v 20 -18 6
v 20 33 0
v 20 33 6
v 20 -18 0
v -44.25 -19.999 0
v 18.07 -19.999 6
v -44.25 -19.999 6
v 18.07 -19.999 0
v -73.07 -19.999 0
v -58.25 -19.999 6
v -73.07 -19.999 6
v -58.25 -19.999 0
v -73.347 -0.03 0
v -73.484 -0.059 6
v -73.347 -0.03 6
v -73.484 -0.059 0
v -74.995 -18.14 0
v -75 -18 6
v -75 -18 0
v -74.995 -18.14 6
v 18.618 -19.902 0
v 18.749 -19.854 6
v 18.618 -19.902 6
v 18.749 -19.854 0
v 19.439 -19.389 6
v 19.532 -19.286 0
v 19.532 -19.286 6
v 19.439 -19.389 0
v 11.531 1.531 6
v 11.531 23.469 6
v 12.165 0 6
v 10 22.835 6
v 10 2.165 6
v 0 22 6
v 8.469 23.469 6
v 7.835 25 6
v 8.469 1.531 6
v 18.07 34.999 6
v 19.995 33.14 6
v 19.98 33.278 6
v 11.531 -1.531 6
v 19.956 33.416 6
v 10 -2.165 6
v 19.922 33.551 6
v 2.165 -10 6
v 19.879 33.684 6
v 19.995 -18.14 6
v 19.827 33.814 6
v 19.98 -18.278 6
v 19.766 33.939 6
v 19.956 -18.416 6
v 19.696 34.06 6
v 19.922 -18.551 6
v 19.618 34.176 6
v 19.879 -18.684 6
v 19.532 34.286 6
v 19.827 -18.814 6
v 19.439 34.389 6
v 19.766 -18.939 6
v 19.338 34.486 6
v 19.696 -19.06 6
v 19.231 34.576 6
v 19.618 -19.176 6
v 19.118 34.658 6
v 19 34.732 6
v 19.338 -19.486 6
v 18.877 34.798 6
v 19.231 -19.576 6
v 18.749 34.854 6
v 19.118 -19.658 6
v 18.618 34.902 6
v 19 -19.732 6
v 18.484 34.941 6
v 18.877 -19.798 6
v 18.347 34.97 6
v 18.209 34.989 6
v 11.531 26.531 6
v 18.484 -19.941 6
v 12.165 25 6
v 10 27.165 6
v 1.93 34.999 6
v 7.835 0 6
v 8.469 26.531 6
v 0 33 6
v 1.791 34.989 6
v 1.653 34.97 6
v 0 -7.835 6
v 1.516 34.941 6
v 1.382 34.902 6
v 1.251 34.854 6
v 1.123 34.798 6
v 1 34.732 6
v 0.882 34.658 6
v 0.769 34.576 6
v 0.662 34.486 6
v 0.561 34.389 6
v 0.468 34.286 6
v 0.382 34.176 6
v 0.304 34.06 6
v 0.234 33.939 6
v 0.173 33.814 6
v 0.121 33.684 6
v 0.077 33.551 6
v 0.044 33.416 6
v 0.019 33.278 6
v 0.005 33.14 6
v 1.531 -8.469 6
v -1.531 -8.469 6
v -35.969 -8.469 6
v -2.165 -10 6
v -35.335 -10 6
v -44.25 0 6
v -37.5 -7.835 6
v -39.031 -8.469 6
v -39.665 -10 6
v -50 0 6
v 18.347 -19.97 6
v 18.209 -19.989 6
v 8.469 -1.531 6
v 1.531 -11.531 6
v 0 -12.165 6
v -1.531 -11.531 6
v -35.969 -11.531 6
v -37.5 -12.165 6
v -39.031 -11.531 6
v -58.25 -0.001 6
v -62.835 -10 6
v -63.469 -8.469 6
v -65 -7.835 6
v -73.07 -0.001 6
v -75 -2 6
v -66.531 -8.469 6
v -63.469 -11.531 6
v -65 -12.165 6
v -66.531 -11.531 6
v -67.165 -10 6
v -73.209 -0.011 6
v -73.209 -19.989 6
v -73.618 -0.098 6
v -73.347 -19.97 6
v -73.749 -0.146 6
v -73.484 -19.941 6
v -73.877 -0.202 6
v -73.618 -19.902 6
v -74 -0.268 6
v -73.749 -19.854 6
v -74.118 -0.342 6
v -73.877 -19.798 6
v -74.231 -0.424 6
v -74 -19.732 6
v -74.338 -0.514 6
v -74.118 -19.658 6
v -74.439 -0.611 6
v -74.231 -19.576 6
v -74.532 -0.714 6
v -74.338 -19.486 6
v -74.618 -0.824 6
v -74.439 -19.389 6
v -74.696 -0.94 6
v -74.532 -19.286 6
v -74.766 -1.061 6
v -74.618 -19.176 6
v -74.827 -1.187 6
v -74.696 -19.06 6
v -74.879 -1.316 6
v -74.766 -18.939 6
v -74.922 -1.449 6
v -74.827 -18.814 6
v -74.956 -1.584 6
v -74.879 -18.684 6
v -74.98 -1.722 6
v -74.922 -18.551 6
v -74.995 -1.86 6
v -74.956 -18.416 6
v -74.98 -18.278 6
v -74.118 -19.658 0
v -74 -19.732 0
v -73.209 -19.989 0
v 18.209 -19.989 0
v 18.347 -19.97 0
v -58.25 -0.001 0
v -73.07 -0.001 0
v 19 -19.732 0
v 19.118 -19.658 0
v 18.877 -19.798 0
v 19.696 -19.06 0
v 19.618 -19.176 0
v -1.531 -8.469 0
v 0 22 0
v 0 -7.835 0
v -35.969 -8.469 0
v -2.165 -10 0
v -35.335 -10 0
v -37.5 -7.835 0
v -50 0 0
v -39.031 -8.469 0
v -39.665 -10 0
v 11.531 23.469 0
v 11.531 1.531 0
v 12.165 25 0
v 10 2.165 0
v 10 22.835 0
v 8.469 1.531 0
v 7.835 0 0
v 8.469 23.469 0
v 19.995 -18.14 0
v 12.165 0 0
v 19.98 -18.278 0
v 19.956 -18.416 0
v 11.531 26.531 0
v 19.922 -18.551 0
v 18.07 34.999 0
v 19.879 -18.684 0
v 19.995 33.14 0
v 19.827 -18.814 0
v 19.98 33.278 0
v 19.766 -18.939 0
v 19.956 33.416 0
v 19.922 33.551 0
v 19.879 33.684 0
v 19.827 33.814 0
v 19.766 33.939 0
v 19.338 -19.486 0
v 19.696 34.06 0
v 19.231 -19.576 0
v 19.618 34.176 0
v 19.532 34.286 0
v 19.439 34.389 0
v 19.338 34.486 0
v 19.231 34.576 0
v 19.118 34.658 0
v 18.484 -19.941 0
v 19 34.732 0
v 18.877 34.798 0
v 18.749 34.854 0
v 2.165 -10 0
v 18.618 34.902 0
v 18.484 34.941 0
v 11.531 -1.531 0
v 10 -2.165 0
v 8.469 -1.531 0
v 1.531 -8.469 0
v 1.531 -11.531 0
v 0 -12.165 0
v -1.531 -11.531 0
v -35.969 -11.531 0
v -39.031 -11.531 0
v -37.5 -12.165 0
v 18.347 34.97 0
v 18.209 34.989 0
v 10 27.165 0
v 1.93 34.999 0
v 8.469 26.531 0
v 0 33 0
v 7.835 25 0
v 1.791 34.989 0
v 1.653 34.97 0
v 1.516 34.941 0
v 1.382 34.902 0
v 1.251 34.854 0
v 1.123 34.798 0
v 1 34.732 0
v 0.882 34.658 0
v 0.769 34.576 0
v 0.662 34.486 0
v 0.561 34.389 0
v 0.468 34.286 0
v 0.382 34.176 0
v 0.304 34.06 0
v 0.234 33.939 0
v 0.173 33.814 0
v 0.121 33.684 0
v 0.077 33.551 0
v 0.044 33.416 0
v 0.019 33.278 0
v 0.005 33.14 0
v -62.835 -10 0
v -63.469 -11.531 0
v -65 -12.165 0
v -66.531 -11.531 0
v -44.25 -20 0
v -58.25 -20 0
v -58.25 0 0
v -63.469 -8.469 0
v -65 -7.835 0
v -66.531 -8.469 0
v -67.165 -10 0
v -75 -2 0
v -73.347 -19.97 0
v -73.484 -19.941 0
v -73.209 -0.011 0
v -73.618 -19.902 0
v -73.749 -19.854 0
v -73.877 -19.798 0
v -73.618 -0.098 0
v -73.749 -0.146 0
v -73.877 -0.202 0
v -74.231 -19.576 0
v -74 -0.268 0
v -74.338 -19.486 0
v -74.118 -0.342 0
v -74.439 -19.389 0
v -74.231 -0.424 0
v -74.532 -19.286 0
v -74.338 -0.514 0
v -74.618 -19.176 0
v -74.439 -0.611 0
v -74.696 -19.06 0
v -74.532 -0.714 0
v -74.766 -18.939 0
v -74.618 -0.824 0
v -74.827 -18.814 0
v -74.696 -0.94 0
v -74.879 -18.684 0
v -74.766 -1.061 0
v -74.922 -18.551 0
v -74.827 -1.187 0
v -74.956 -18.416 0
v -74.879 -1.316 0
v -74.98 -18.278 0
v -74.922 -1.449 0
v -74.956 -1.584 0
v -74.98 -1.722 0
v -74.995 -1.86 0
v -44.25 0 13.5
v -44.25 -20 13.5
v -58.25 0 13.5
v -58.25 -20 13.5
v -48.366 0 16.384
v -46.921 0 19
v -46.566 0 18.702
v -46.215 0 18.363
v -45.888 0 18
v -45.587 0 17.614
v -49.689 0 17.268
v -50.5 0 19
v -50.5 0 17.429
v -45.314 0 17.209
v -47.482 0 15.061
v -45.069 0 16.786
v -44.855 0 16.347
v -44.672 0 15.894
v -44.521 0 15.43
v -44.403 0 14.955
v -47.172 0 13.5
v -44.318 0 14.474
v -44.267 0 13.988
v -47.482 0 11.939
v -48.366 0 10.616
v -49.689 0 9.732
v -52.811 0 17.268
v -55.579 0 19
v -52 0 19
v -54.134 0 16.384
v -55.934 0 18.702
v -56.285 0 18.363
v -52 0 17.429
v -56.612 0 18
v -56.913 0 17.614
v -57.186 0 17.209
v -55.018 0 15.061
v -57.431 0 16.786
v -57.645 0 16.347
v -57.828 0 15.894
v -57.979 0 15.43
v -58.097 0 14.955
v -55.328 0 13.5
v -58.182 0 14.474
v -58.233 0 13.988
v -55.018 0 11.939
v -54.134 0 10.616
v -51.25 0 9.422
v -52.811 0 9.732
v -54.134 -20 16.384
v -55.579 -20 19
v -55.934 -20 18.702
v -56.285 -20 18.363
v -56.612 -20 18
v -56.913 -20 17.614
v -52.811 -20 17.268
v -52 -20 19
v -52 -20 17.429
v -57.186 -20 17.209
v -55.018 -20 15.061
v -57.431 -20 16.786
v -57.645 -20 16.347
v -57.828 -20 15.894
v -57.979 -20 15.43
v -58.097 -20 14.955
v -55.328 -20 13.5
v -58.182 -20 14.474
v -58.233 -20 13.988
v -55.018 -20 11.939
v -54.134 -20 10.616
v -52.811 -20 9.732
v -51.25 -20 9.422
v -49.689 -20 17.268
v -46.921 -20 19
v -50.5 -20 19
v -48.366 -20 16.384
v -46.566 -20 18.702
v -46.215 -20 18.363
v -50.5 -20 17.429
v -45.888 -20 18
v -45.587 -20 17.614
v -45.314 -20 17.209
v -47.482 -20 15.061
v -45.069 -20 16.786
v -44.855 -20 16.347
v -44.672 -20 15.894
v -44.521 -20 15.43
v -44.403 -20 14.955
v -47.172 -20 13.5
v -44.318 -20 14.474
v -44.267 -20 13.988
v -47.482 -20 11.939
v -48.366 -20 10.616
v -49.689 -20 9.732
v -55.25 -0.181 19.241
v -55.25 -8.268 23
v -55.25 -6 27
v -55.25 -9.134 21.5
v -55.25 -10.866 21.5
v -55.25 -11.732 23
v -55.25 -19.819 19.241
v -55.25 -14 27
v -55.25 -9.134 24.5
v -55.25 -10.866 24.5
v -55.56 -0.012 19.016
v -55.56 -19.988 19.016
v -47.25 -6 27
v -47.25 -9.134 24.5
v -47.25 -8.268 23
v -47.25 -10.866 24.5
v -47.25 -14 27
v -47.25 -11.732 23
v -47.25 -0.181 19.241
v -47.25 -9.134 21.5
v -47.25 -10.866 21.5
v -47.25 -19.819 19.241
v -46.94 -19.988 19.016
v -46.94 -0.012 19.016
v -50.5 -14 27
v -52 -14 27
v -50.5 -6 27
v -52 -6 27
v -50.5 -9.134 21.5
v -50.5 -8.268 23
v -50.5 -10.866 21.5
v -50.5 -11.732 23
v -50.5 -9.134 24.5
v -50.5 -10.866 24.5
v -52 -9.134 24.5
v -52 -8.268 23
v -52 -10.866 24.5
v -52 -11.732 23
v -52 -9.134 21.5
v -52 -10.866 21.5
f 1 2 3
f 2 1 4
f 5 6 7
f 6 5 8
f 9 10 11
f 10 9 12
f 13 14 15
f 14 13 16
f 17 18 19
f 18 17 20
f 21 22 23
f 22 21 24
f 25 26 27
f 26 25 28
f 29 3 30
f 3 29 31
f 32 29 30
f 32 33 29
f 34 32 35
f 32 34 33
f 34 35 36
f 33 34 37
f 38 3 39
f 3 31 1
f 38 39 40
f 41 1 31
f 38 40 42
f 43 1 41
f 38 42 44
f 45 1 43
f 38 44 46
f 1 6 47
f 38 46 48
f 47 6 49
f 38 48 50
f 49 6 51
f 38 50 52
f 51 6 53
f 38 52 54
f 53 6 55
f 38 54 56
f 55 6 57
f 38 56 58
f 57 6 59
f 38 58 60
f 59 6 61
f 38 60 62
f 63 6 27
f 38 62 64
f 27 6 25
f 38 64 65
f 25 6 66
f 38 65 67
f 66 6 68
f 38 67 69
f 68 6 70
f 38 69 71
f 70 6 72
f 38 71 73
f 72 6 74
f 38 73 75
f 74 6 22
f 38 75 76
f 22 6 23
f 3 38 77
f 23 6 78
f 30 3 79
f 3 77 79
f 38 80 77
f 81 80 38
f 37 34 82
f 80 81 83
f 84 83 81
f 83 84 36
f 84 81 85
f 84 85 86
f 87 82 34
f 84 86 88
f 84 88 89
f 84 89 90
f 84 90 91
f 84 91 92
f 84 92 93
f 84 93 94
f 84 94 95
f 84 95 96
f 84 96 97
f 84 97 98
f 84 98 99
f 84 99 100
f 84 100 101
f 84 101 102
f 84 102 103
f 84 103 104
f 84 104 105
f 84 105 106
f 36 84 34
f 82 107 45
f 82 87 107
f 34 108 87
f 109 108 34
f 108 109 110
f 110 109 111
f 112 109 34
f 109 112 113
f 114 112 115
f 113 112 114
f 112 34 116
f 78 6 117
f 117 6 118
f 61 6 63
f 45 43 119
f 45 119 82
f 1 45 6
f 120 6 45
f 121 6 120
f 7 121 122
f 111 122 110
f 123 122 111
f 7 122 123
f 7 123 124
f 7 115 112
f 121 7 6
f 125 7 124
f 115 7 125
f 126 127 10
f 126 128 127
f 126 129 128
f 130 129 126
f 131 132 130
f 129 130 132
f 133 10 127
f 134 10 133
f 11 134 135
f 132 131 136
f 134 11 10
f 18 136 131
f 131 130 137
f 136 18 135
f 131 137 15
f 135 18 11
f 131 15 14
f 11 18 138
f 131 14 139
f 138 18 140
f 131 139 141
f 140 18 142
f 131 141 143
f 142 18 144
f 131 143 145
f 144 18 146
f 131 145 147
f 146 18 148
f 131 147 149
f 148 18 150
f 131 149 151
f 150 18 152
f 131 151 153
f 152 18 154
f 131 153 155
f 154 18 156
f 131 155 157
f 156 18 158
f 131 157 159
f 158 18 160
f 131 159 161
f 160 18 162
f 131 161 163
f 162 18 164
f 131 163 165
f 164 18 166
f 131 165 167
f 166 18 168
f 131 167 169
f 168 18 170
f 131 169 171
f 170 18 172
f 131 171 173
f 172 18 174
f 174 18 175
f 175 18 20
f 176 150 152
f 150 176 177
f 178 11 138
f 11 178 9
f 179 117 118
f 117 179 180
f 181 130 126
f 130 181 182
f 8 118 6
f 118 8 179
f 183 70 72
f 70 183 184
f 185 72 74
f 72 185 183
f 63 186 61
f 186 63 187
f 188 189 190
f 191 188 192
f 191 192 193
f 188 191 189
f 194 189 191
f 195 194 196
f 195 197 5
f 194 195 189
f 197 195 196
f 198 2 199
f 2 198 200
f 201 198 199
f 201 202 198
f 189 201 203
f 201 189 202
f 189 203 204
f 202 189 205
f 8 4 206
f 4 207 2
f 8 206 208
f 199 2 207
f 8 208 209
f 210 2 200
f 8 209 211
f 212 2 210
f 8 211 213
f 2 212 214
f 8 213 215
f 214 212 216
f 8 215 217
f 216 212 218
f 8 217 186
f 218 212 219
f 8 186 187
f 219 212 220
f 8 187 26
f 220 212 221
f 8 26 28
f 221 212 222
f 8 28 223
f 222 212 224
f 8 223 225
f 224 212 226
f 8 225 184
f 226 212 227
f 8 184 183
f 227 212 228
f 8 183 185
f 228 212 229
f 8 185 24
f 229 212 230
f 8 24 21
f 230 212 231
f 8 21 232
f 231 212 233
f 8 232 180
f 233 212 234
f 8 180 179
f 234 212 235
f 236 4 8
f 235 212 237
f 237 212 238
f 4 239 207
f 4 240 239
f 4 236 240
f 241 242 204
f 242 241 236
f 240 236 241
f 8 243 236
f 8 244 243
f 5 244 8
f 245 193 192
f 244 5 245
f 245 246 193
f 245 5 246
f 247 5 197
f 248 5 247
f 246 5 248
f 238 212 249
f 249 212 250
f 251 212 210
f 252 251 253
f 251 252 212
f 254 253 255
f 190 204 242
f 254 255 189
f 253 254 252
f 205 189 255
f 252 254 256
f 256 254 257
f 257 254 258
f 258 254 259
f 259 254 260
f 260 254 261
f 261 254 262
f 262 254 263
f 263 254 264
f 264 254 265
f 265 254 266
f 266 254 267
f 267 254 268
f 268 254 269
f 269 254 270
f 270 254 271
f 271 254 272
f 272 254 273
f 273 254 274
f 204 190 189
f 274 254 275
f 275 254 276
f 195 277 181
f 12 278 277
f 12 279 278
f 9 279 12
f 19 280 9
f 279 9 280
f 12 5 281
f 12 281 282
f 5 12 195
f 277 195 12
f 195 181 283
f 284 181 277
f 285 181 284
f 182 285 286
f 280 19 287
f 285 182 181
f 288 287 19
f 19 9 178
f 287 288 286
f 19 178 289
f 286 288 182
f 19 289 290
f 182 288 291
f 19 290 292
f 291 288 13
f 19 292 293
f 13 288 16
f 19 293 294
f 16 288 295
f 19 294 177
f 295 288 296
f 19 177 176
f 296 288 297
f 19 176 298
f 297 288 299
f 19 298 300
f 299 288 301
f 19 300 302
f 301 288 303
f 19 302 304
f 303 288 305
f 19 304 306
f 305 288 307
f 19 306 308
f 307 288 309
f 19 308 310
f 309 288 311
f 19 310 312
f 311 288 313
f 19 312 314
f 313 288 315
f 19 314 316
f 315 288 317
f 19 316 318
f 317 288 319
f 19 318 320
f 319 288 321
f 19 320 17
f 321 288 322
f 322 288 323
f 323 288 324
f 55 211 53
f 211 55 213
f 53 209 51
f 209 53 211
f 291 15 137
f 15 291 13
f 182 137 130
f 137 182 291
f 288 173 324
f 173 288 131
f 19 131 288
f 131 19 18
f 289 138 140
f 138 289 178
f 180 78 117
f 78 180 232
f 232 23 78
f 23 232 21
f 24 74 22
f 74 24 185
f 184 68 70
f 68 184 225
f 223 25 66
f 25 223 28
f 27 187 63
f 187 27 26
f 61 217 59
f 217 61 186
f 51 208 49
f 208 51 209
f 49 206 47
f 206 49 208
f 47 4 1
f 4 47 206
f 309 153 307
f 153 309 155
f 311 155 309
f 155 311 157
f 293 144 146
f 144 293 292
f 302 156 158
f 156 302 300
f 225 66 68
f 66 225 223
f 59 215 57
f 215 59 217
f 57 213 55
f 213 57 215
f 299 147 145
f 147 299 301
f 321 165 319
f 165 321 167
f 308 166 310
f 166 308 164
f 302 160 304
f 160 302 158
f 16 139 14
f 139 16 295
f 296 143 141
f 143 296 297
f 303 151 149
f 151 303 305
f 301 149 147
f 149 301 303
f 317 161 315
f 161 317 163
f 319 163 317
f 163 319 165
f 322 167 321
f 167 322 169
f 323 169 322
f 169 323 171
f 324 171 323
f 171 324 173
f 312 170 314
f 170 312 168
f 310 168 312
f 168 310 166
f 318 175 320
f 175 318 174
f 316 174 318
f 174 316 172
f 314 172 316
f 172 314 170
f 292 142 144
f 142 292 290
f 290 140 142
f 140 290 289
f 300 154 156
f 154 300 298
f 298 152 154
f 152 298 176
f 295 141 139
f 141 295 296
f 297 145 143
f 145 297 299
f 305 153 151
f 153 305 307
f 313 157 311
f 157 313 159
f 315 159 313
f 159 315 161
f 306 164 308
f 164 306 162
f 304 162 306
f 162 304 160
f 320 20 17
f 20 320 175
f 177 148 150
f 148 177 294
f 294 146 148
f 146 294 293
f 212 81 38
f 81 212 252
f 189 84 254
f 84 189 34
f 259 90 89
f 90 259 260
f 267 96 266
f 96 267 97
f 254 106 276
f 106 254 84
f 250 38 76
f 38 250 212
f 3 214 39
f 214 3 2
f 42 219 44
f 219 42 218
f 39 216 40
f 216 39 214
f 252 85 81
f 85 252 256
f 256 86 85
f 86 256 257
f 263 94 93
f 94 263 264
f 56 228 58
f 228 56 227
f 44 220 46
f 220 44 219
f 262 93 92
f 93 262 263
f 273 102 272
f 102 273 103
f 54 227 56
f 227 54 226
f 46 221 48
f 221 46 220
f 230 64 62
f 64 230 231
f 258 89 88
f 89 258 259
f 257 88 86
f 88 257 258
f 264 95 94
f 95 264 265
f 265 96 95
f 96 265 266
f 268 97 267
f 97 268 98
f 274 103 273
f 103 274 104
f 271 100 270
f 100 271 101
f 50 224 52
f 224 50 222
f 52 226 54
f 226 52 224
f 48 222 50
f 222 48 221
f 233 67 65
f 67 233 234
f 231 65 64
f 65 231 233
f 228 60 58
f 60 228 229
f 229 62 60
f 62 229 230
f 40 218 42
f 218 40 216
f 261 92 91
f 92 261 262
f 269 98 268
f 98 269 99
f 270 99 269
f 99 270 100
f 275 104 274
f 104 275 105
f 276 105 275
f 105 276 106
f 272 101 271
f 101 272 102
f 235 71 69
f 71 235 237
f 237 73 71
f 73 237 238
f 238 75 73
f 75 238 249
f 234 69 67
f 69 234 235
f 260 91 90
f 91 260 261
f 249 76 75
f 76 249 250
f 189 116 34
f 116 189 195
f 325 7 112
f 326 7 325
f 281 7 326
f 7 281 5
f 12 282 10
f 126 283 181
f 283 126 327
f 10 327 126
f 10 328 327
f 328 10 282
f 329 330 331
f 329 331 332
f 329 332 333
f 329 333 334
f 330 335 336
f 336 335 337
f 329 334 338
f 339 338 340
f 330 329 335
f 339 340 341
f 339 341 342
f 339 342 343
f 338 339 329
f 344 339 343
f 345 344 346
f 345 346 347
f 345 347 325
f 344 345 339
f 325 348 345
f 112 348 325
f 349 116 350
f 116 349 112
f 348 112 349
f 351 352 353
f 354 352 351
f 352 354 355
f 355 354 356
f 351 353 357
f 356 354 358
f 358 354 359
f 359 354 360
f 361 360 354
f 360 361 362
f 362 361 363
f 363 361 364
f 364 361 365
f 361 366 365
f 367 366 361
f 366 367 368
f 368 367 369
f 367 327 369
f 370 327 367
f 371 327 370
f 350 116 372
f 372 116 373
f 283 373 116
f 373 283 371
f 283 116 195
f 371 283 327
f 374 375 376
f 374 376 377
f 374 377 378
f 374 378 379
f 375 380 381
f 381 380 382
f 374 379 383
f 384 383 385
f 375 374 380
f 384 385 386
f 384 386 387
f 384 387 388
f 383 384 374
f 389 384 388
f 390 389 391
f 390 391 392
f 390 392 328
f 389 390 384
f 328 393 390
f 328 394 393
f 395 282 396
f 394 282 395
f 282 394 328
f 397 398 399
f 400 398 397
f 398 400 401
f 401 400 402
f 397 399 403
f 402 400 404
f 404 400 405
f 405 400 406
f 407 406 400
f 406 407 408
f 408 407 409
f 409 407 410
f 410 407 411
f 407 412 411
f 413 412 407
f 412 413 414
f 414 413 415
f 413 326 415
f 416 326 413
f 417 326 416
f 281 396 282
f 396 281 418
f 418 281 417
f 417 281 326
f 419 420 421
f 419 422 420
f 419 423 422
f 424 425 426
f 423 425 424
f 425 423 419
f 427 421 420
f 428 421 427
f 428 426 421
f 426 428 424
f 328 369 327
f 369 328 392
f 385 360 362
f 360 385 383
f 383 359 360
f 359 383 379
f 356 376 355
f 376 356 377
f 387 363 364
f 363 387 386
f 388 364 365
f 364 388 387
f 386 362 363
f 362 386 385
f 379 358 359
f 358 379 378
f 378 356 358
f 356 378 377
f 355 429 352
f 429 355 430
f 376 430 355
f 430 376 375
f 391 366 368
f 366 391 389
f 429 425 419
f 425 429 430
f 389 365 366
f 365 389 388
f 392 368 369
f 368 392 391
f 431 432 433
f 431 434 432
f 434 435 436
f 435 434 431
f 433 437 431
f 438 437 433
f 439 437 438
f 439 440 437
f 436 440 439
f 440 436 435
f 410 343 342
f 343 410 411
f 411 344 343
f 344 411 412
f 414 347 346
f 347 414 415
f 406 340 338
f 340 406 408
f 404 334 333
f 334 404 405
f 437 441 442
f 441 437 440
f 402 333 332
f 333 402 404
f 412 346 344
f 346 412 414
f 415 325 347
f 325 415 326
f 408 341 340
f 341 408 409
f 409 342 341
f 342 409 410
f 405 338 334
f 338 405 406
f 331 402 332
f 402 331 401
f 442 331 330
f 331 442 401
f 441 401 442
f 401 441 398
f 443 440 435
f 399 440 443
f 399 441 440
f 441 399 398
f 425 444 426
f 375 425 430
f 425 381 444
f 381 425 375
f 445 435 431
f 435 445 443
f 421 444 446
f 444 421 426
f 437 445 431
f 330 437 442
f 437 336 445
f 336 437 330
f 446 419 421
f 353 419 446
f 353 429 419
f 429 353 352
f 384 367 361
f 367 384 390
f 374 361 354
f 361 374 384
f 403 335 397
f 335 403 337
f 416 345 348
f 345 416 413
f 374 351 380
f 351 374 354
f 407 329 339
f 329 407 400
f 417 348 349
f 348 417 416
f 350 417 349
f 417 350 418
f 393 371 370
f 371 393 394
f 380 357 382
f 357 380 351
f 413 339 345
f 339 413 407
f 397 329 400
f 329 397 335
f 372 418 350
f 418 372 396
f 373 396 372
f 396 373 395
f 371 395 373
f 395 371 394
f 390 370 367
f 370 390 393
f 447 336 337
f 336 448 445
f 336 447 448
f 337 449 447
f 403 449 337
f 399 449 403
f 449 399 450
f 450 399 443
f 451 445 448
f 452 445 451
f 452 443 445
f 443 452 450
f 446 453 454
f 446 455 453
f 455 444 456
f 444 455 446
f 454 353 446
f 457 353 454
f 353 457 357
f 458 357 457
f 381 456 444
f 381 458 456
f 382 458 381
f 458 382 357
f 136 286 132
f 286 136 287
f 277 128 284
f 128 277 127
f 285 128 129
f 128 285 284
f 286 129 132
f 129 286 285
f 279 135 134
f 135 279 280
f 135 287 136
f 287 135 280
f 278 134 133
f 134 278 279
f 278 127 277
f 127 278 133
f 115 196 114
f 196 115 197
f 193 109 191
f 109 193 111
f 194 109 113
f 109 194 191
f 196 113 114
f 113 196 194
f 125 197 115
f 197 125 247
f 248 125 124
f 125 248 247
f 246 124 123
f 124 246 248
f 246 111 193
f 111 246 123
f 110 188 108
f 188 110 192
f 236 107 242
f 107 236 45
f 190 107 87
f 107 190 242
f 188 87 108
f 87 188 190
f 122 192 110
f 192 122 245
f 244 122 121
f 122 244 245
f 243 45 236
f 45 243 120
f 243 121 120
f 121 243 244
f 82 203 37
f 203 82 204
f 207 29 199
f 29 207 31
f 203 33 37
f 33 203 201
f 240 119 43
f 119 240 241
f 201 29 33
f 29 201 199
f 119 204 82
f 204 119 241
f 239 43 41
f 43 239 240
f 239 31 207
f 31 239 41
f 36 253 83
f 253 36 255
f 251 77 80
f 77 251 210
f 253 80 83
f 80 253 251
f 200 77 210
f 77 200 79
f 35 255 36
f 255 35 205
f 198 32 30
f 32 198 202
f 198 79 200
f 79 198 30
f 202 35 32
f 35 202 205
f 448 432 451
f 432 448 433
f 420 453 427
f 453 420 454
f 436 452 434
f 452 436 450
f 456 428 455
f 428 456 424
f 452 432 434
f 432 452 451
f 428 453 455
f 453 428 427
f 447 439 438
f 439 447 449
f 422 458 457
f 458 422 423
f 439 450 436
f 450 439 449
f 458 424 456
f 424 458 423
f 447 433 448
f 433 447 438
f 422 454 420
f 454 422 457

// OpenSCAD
// file: polyhole.scad
// The Cylinder is dead! Long live the Cylinder!
// A module for a polyhole by radius, based on Nophead's work.

module polyhole(h, r, cent = false)
{
    n = max(round(4 * r), 3);
    cylinder(h = h, r = r / cos(180 / n), $fn = n, center = cent);
}
// file: Y-BarMount.scad
// A mount for the y-axis bar.

use<polyhole.scad>

YMount();

module YMount()
{
    difference()
    {
        union()
        {
            hull()
            {
                translate([-18, -18, 0])
                    cylinder(h = 6, r = 2, $fn = 90);
                translate([-18, -2, 0])
                    cylinder(h = 6, r = 2, $fn = 90);
                translate([73, -2, 0])
                    cylinder(h = 6, r = 2, $fn = 90);
                translate([73, -18, 0])
                    cylinder(h = 6, r = 2, $fn = 90);
            }
            hull()
            {
                translate([-18, -18, 0])
                    cylinder(h = 6, r = 2, $fn = 90);
                translate([-2, -18, 0])
                    cylinder(h = 6, r = 2, $fn = 90);
                translate([-2, 33, 0])
                    cylinder(h = 6, r = 2, $fn = 90);
                translate([-18, 33, 0])
                    cylinder(h = 6, r = 2, $fn = 90);
            }
            linear_extrude(height = 6)
                polygon([[-5, -5], [50, 0], [0, 22]]);
            translate([51.25, -10, 19])
                cube([14, 20, 38], center = true);
        }
        translate([51.25, 0, 13.5])
            rotate([90, 0, 0])
                polyhole(20, 4);
        difference()
        {
            translate([58.25, -10, 26.5])
                cube([6, 20, 26], center = true);
            translate([51.25, 0, 13.5])
                rotate([90, 0, 0])
                    cylinder(h = 20, r = 7, $fn = 90);
        }
        difference()
        {
            translate([44.25, -10, 26.5])
                cube([6, 20, 26], center = true);
            translate([51.25, 0, 13.5])
                rotate([90, 0, 0])
                    cylinder(h = 20, r = 7, $fn = 90);
        }
        difference()
        {
            translate([51.25, -10, 32])
                cube([14, 20, 26], center = true);
            hull()
            {
                translate([51.25, -10, 18])
                    cube([14, 20, 2], center = true);
                translate([51.25, -10, 26])
                    cube([14, 8, 2], center = true);
            }
        }
        translate([51.25, -10, 26.5])
                cube([1.5, 20, 26], center = true);
        translate([65, -10, 0])
            polyhole(6, 2);
        translate([37.5, -10, 0])
            polyhole(6, 2);
        translate([0, -10, 0])
            polyhole(6, 2);
        translate([-10, 0, 0])
            polyhole(6, 2);
        translate([-10, 25, 0])
            polyhole(6, 2);
        translate([46, -10, 23])
            rotate([90, 0, 90])
                polyhole(14, 1.5);
    }
}
// main file
// The other y-axis bar mount.

use<Y-BarMount.scad>

scale([-1, 1, 1])
    YMount();
